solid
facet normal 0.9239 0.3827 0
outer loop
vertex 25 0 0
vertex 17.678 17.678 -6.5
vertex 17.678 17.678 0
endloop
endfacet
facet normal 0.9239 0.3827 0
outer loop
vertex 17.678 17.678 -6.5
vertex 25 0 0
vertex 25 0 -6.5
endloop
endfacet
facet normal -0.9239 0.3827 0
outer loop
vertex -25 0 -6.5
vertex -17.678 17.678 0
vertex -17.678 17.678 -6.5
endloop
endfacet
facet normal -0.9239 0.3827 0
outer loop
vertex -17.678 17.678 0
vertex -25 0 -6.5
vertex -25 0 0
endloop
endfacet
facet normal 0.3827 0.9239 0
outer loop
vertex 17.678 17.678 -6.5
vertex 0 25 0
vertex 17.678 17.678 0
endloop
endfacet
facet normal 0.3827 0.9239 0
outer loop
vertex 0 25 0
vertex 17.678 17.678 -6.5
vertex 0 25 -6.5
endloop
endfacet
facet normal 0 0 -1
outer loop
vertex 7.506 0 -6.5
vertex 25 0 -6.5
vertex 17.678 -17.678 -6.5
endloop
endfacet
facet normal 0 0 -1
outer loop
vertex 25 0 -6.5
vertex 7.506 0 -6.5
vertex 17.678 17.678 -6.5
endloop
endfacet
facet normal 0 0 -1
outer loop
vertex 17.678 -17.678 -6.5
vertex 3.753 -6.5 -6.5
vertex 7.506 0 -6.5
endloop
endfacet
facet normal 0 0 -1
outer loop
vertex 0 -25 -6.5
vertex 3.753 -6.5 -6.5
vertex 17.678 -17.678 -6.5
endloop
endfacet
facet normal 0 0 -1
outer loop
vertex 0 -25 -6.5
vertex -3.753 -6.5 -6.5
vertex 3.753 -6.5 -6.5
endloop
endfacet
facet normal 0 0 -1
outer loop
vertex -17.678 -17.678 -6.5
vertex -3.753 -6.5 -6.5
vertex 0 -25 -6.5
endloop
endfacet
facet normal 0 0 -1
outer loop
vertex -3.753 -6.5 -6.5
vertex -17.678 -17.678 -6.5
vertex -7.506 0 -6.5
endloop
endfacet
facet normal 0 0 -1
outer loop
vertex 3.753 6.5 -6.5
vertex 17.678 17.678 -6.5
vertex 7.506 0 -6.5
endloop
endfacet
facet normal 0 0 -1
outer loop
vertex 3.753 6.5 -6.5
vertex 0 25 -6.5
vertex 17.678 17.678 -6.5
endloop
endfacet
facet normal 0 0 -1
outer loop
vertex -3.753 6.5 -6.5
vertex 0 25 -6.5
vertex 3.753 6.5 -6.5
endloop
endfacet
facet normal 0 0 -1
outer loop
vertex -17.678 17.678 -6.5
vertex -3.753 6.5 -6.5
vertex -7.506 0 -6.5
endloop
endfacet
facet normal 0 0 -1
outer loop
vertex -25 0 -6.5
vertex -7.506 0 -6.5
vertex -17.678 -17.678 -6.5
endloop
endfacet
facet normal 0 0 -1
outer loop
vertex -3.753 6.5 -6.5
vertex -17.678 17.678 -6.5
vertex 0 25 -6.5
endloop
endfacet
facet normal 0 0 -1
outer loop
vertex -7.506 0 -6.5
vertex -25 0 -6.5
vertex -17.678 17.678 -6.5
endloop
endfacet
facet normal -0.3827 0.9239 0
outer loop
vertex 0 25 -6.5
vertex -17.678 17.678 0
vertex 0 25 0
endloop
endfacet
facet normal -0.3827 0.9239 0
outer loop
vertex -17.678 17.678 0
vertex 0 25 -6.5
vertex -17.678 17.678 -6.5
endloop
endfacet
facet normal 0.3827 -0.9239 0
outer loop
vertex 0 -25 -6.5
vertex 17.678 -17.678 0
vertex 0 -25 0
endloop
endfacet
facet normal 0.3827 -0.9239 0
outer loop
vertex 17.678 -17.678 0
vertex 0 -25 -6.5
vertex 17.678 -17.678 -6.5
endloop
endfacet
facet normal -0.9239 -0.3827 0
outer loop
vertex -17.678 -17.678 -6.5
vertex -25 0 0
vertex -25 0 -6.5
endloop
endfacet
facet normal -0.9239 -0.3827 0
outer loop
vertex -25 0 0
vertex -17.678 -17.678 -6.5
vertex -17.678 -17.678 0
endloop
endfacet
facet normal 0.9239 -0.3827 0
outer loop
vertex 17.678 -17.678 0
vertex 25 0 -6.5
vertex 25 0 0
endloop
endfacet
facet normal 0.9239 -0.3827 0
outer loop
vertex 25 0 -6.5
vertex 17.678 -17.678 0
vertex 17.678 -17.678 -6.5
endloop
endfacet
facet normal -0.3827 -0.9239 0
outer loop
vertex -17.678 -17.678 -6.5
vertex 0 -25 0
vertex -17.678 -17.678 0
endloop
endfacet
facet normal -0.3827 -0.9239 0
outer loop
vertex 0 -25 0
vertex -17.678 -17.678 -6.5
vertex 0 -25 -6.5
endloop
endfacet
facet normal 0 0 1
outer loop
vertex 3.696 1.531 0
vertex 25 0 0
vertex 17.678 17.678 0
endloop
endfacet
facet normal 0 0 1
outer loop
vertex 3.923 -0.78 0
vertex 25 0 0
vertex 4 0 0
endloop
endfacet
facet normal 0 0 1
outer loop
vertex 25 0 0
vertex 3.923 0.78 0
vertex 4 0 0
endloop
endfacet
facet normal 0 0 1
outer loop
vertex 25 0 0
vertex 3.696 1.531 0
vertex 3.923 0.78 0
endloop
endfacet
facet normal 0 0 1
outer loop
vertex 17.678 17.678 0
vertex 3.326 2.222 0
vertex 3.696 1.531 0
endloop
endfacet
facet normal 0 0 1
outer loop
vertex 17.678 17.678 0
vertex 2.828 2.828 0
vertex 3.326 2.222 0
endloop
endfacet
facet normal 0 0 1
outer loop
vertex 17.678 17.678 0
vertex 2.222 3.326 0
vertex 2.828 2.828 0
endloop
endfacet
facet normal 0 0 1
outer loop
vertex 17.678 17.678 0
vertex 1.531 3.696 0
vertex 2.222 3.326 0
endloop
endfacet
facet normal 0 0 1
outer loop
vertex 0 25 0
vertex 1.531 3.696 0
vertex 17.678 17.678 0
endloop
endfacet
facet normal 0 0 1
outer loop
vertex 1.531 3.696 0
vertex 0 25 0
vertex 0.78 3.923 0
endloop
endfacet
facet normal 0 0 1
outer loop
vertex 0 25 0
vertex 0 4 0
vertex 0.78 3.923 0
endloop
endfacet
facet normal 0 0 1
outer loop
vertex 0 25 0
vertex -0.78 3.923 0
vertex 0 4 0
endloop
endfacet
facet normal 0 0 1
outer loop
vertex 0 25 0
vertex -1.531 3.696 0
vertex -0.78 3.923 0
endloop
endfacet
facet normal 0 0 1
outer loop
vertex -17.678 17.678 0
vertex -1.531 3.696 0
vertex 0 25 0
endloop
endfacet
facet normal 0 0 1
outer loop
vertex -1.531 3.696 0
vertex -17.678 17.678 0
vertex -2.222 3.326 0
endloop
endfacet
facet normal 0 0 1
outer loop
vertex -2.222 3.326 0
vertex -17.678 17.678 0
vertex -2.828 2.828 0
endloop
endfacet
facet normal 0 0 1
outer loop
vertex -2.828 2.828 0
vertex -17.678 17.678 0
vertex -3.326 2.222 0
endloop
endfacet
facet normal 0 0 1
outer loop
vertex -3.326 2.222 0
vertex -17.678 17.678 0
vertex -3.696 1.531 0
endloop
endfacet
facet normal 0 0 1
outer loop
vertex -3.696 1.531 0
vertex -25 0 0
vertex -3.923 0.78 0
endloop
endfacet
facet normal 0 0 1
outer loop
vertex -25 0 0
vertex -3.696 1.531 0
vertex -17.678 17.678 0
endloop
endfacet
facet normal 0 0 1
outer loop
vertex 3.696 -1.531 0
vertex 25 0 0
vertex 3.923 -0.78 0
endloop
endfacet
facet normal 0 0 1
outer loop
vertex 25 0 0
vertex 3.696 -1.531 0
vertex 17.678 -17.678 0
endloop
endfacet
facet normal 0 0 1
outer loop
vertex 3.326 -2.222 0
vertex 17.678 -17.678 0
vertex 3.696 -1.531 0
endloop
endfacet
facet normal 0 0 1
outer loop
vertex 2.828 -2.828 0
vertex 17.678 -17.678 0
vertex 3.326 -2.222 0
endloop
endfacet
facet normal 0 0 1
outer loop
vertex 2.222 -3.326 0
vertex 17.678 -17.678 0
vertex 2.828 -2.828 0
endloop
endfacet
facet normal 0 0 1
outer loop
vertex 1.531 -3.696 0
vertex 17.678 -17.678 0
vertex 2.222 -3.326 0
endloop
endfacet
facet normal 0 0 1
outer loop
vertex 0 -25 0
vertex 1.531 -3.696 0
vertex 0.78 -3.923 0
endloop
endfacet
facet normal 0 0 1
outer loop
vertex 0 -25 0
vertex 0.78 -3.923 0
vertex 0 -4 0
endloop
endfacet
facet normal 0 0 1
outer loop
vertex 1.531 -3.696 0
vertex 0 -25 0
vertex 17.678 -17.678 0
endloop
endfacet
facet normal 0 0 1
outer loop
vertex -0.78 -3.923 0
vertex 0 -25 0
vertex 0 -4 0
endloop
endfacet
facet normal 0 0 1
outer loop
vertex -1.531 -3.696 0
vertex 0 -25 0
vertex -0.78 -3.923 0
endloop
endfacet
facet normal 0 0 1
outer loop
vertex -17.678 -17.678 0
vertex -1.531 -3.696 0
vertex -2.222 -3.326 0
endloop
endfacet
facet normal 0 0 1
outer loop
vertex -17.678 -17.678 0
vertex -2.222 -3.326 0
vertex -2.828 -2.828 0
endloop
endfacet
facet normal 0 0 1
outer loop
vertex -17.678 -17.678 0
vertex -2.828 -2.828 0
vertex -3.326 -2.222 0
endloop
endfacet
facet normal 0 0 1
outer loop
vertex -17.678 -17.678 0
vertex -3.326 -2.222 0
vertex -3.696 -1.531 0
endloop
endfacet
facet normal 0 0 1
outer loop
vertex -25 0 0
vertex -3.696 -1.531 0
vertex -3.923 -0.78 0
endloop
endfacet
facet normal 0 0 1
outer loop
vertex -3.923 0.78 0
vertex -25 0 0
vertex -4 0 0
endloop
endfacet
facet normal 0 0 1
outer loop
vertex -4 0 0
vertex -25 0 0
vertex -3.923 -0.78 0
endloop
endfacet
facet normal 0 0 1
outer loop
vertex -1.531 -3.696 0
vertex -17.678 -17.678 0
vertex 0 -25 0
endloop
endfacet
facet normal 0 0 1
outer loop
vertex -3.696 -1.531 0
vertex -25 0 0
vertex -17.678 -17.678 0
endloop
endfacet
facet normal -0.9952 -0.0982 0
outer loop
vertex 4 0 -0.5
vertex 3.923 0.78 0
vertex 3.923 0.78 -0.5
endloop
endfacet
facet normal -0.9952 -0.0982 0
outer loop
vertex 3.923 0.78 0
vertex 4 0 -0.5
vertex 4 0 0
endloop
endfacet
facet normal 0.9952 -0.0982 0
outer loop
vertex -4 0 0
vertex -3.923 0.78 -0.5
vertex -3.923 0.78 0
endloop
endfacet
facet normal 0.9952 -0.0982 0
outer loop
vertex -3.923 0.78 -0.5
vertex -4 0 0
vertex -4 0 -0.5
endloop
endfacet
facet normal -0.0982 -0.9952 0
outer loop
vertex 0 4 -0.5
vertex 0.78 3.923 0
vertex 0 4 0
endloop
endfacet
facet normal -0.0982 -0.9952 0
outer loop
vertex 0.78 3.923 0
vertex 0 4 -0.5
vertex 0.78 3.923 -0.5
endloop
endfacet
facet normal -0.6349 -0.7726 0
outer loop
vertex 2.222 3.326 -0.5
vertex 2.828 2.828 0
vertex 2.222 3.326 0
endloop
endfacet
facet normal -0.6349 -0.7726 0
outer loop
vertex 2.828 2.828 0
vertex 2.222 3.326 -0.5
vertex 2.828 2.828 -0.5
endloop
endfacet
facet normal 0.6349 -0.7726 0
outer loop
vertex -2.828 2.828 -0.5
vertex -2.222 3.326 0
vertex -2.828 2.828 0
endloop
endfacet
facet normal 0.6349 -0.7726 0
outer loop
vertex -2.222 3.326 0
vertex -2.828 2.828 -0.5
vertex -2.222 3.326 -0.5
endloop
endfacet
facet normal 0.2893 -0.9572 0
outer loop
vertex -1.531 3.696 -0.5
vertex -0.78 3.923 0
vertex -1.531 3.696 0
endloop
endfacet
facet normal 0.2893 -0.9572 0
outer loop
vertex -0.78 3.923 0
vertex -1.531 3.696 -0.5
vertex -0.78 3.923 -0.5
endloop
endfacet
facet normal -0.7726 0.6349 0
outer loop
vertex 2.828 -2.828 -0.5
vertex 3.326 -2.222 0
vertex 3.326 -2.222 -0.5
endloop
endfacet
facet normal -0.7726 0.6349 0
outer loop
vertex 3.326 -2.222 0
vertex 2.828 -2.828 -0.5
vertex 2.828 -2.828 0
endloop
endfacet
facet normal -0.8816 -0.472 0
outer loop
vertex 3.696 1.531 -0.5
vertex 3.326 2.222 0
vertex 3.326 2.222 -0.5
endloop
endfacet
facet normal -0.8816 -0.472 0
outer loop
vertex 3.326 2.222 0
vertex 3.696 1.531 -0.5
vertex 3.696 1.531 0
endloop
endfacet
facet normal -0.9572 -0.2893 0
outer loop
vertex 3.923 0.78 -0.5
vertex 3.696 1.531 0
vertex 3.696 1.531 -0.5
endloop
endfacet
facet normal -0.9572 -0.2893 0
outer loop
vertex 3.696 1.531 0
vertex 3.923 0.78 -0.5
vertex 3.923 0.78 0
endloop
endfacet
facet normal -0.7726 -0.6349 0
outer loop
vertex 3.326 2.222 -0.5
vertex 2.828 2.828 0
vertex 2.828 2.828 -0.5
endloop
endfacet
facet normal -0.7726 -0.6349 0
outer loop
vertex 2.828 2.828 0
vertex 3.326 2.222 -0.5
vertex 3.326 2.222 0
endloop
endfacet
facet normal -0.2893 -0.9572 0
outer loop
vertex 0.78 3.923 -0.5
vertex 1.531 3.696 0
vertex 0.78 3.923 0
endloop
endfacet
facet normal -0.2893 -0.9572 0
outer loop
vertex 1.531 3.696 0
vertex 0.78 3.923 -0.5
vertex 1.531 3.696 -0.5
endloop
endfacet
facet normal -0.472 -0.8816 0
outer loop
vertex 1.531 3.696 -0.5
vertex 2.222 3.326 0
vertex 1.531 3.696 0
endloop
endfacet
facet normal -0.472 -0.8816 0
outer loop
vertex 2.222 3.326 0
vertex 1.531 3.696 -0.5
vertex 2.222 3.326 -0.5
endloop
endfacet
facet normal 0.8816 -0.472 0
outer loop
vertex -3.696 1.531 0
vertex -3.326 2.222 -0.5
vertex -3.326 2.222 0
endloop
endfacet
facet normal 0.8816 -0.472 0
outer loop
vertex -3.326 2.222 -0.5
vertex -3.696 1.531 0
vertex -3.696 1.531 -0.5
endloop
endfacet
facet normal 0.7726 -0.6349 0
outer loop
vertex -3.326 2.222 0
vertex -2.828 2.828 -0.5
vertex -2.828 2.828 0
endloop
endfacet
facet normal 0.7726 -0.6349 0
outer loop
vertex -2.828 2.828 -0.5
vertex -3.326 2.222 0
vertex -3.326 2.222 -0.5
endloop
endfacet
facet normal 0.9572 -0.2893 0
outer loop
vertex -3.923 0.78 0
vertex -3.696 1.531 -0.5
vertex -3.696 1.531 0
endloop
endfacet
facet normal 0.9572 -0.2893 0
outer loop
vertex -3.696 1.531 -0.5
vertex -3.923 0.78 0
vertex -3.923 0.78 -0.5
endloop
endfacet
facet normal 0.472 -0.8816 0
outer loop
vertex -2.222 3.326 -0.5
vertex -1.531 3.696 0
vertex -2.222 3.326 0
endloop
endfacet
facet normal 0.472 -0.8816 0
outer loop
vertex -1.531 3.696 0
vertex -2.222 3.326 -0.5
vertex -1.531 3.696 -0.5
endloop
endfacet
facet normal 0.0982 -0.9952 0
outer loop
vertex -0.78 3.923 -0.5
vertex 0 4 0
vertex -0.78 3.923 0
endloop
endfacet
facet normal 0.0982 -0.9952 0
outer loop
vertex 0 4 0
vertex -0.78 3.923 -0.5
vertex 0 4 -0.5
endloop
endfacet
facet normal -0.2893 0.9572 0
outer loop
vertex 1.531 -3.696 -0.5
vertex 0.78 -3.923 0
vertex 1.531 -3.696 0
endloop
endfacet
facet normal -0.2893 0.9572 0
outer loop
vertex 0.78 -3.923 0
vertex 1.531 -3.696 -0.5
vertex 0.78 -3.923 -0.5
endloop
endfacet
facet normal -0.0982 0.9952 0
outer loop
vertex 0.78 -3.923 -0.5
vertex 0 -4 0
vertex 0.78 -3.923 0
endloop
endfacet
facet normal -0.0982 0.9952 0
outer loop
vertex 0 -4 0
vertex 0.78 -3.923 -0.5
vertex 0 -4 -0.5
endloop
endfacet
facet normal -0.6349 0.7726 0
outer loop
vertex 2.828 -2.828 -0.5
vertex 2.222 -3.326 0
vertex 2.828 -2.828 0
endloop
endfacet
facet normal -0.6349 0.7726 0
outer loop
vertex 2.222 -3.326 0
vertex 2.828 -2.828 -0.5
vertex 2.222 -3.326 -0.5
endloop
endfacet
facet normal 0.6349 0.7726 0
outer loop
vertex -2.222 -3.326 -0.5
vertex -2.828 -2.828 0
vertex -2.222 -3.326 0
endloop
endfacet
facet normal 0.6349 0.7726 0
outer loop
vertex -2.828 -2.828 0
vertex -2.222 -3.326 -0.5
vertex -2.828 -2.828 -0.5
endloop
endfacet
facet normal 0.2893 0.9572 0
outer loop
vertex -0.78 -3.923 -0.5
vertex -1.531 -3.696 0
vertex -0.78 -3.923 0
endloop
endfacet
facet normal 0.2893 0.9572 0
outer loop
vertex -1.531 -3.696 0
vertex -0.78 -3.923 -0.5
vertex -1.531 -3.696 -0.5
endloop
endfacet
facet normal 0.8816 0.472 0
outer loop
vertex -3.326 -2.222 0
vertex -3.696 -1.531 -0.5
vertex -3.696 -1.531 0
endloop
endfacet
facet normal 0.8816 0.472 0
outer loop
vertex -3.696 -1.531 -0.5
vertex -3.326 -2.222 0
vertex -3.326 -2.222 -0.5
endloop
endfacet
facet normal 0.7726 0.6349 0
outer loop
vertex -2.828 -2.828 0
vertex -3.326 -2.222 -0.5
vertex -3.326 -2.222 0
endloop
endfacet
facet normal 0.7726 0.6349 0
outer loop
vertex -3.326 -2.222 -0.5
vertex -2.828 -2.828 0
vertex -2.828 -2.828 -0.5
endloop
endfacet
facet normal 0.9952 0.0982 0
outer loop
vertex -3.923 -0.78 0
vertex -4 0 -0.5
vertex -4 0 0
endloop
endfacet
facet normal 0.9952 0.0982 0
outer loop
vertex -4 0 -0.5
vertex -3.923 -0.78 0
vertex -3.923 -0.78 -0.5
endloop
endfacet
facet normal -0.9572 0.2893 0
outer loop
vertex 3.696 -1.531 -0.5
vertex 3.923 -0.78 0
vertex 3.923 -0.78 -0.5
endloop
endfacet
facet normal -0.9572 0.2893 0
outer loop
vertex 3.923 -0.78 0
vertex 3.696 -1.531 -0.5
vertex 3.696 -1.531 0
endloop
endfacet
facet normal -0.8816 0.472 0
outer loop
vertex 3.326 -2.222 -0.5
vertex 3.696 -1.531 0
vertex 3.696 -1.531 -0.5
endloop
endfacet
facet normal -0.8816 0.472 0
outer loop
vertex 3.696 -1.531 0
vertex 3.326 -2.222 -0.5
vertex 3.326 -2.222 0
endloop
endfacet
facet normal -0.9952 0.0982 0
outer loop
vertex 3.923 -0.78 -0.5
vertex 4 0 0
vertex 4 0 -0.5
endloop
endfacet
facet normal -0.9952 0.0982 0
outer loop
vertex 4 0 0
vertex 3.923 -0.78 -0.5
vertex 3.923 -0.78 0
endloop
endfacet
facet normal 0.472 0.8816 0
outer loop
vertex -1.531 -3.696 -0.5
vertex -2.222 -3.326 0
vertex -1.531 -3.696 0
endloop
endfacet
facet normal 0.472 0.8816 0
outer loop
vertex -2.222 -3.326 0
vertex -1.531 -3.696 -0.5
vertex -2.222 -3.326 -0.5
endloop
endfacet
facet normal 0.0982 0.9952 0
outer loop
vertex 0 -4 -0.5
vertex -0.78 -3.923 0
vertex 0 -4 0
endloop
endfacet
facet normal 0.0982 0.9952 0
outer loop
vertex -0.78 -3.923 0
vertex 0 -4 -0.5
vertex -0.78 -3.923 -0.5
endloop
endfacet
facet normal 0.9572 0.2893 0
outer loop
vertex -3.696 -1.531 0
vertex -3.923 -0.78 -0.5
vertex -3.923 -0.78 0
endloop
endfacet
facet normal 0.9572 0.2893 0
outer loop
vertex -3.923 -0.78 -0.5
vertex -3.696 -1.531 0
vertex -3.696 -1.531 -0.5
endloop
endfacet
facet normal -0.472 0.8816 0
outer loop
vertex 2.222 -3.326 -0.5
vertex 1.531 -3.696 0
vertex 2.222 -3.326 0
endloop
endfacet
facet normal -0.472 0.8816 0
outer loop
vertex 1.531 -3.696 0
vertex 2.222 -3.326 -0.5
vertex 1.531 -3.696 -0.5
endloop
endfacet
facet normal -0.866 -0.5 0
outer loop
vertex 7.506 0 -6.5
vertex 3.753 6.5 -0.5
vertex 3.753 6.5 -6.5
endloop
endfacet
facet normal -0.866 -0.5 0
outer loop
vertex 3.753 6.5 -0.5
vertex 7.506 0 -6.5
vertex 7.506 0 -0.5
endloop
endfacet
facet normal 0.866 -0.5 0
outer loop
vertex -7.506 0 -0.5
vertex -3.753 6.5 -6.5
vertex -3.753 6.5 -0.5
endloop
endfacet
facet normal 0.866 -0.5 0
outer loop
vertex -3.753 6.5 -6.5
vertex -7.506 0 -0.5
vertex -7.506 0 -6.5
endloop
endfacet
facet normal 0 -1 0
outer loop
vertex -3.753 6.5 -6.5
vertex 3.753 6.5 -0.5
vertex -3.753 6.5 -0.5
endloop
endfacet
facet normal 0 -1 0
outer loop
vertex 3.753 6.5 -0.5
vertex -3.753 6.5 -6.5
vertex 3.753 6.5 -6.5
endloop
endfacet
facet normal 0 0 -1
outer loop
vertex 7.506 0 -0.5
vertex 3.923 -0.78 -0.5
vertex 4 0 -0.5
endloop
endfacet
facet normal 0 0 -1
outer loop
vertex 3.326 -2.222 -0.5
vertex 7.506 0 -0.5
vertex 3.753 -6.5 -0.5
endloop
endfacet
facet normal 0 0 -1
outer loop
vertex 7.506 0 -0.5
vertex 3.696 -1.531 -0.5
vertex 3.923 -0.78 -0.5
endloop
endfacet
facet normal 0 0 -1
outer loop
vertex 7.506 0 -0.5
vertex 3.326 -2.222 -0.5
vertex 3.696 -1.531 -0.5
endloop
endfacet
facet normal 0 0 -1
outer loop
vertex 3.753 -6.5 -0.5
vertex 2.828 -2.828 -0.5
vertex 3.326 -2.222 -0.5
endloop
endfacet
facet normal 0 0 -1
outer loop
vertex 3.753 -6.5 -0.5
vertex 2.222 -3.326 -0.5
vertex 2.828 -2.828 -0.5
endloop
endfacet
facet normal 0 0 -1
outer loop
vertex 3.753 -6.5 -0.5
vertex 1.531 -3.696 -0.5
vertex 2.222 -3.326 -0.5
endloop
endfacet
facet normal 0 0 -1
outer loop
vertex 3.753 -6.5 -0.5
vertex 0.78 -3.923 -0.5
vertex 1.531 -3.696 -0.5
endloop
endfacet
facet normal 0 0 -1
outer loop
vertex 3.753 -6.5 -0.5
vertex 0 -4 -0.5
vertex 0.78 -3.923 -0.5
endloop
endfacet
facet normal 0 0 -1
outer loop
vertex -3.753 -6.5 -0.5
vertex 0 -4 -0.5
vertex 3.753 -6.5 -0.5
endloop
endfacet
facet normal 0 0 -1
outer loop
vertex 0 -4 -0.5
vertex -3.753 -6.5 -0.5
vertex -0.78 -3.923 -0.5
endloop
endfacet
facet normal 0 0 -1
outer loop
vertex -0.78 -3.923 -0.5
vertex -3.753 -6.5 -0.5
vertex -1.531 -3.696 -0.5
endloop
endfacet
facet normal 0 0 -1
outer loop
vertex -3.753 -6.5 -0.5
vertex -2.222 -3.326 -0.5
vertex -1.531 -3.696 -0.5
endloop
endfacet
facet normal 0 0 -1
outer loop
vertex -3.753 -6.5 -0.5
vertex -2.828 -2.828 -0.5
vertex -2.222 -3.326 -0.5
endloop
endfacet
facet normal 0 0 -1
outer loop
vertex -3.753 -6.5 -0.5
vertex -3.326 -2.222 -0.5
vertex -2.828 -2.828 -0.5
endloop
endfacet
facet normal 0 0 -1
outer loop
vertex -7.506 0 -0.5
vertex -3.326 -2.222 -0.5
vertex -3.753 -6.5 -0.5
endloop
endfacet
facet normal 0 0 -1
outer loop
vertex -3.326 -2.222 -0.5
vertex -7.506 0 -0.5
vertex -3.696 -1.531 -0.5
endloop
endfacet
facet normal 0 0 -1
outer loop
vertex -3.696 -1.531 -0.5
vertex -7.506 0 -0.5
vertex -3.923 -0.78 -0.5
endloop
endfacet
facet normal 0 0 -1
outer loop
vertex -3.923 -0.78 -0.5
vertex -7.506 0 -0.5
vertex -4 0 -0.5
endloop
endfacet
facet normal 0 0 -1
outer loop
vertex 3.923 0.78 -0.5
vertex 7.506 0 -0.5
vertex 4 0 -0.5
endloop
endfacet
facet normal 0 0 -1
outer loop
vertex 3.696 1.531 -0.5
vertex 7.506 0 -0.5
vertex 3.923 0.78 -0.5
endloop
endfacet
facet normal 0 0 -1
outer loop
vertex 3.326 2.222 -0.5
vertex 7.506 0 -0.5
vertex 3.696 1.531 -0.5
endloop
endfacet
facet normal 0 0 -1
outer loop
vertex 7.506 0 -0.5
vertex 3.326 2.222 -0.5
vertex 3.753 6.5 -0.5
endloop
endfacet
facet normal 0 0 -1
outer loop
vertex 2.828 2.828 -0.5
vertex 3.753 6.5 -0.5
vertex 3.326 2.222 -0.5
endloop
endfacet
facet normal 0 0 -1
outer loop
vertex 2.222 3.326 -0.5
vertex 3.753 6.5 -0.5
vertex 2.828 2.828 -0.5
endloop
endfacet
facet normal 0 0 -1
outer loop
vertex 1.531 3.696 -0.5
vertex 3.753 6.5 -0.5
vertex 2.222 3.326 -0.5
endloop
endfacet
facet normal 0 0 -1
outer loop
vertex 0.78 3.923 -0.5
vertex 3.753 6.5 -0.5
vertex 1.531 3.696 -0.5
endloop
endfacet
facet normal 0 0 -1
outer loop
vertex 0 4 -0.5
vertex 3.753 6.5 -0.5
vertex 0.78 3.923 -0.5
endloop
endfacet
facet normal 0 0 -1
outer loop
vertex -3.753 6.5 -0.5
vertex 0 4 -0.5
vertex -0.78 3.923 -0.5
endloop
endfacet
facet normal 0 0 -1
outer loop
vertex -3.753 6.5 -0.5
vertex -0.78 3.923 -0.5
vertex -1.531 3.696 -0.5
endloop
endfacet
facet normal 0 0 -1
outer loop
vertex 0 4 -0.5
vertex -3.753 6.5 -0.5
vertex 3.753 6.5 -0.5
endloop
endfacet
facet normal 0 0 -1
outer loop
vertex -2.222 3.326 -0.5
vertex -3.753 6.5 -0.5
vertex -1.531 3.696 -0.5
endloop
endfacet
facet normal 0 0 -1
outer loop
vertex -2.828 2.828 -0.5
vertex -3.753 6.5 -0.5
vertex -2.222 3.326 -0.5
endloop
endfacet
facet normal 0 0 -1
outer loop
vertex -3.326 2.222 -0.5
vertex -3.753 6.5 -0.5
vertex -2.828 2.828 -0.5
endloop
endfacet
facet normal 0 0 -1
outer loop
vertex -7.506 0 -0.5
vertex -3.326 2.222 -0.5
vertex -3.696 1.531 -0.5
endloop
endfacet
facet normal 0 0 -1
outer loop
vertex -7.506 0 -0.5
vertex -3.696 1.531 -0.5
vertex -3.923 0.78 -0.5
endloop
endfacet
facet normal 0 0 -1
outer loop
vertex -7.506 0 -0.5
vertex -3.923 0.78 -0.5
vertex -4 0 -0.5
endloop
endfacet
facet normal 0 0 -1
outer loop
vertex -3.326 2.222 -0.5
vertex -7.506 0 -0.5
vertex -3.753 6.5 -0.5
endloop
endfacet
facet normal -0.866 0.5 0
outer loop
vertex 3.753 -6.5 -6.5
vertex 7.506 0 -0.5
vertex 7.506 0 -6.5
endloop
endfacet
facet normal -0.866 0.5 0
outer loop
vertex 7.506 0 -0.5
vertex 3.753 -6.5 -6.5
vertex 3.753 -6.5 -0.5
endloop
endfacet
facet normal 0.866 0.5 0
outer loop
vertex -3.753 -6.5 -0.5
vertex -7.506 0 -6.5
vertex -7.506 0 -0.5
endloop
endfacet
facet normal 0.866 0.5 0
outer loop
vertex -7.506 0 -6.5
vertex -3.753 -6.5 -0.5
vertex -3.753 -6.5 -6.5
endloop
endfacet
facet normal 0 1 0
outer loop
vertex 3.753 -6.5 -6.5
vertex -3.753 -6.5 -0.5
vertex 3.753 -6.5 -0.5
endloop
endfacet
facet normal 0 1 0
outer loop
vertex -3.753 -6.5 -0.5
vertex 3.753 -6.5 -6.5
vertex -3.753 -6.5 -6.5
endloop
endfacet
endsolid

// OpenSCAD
/**********************************************************************************************************************
 **
 ** parts/printed/foot_plate.scad
 **
 ** This file constructs the plate that is screwed under the foot bracket to level the printer. To assemble the 
 ** printer, you need three of these parts.
 **
 **********************************************************************************************************************/

include <../../conf/colors.scad>
include <../../conf/derived_sizes.scad>
include <../../conf/part_sizes.scad>

use <../../bom/bom.scad>
use <../../parts/vitamins/vitamins.scad>

/**
 * Creates the foot plate by rendering it from scratch. This module is not to be called externally, use 
 * foot() instead.
 */
module _render_foot_plate() {
	color_printed_outer_frame()
		render() {
			translate([0, 0, -foot_plate_thickness()])
				difference() {
					// the base plate
					cylinder(d = foot_plate_diameter(),
						     h = foot_plate_thickness(),
					    	 $fn = foot_plate_sides());
					// minus the screw hole (all the way through)
					translate([0, 0, -epsilon()])
						cylinder(d = foot_plate_screw_size(),
								 h = foot_plate_thickness() + 2 * epsilon(),
								 $fn = foot_plate_screw_hole_resolution());
					// minus the recess for the screw head
					translate([0, 0, -epsilon()])
						cylinder(d = nut_key_outer_diameter(foot_plate_screw_size()),
								 h = foot_plate_screw_recess_depth() + epsilon(),
								 $fn = 6);


				}
		} 
}

/**
 * Main module to use the pre-rendered foot plate. The assembly is centered at the origin protrudin ginto negative Z.
 */
module foot_plate() {
	bom_entry(section = "Printed Parts", description = "Frame", size = "Foot Plate");
	color_printed_outer_frame()
		import(file = "foot_plate.stl");
}

/** 
 * Renders the hardware (nuts, bolts, screws) that are used to fixed the printed part to the surrounding parts.
 */
module foot_plate_hardware() {
	translate([0, 0, foot_plate_screw_recess_depth() + epsilon() - foot_plate_thickness()])
		rotate([0, -90, 0])
			// TODO this renders a cap screw, but what we really want is a hex head screw here
			screw(size = foot_plate_screw_size(), min_length = foot_plate_screw_min_length());
}

_render_foot_plate();
